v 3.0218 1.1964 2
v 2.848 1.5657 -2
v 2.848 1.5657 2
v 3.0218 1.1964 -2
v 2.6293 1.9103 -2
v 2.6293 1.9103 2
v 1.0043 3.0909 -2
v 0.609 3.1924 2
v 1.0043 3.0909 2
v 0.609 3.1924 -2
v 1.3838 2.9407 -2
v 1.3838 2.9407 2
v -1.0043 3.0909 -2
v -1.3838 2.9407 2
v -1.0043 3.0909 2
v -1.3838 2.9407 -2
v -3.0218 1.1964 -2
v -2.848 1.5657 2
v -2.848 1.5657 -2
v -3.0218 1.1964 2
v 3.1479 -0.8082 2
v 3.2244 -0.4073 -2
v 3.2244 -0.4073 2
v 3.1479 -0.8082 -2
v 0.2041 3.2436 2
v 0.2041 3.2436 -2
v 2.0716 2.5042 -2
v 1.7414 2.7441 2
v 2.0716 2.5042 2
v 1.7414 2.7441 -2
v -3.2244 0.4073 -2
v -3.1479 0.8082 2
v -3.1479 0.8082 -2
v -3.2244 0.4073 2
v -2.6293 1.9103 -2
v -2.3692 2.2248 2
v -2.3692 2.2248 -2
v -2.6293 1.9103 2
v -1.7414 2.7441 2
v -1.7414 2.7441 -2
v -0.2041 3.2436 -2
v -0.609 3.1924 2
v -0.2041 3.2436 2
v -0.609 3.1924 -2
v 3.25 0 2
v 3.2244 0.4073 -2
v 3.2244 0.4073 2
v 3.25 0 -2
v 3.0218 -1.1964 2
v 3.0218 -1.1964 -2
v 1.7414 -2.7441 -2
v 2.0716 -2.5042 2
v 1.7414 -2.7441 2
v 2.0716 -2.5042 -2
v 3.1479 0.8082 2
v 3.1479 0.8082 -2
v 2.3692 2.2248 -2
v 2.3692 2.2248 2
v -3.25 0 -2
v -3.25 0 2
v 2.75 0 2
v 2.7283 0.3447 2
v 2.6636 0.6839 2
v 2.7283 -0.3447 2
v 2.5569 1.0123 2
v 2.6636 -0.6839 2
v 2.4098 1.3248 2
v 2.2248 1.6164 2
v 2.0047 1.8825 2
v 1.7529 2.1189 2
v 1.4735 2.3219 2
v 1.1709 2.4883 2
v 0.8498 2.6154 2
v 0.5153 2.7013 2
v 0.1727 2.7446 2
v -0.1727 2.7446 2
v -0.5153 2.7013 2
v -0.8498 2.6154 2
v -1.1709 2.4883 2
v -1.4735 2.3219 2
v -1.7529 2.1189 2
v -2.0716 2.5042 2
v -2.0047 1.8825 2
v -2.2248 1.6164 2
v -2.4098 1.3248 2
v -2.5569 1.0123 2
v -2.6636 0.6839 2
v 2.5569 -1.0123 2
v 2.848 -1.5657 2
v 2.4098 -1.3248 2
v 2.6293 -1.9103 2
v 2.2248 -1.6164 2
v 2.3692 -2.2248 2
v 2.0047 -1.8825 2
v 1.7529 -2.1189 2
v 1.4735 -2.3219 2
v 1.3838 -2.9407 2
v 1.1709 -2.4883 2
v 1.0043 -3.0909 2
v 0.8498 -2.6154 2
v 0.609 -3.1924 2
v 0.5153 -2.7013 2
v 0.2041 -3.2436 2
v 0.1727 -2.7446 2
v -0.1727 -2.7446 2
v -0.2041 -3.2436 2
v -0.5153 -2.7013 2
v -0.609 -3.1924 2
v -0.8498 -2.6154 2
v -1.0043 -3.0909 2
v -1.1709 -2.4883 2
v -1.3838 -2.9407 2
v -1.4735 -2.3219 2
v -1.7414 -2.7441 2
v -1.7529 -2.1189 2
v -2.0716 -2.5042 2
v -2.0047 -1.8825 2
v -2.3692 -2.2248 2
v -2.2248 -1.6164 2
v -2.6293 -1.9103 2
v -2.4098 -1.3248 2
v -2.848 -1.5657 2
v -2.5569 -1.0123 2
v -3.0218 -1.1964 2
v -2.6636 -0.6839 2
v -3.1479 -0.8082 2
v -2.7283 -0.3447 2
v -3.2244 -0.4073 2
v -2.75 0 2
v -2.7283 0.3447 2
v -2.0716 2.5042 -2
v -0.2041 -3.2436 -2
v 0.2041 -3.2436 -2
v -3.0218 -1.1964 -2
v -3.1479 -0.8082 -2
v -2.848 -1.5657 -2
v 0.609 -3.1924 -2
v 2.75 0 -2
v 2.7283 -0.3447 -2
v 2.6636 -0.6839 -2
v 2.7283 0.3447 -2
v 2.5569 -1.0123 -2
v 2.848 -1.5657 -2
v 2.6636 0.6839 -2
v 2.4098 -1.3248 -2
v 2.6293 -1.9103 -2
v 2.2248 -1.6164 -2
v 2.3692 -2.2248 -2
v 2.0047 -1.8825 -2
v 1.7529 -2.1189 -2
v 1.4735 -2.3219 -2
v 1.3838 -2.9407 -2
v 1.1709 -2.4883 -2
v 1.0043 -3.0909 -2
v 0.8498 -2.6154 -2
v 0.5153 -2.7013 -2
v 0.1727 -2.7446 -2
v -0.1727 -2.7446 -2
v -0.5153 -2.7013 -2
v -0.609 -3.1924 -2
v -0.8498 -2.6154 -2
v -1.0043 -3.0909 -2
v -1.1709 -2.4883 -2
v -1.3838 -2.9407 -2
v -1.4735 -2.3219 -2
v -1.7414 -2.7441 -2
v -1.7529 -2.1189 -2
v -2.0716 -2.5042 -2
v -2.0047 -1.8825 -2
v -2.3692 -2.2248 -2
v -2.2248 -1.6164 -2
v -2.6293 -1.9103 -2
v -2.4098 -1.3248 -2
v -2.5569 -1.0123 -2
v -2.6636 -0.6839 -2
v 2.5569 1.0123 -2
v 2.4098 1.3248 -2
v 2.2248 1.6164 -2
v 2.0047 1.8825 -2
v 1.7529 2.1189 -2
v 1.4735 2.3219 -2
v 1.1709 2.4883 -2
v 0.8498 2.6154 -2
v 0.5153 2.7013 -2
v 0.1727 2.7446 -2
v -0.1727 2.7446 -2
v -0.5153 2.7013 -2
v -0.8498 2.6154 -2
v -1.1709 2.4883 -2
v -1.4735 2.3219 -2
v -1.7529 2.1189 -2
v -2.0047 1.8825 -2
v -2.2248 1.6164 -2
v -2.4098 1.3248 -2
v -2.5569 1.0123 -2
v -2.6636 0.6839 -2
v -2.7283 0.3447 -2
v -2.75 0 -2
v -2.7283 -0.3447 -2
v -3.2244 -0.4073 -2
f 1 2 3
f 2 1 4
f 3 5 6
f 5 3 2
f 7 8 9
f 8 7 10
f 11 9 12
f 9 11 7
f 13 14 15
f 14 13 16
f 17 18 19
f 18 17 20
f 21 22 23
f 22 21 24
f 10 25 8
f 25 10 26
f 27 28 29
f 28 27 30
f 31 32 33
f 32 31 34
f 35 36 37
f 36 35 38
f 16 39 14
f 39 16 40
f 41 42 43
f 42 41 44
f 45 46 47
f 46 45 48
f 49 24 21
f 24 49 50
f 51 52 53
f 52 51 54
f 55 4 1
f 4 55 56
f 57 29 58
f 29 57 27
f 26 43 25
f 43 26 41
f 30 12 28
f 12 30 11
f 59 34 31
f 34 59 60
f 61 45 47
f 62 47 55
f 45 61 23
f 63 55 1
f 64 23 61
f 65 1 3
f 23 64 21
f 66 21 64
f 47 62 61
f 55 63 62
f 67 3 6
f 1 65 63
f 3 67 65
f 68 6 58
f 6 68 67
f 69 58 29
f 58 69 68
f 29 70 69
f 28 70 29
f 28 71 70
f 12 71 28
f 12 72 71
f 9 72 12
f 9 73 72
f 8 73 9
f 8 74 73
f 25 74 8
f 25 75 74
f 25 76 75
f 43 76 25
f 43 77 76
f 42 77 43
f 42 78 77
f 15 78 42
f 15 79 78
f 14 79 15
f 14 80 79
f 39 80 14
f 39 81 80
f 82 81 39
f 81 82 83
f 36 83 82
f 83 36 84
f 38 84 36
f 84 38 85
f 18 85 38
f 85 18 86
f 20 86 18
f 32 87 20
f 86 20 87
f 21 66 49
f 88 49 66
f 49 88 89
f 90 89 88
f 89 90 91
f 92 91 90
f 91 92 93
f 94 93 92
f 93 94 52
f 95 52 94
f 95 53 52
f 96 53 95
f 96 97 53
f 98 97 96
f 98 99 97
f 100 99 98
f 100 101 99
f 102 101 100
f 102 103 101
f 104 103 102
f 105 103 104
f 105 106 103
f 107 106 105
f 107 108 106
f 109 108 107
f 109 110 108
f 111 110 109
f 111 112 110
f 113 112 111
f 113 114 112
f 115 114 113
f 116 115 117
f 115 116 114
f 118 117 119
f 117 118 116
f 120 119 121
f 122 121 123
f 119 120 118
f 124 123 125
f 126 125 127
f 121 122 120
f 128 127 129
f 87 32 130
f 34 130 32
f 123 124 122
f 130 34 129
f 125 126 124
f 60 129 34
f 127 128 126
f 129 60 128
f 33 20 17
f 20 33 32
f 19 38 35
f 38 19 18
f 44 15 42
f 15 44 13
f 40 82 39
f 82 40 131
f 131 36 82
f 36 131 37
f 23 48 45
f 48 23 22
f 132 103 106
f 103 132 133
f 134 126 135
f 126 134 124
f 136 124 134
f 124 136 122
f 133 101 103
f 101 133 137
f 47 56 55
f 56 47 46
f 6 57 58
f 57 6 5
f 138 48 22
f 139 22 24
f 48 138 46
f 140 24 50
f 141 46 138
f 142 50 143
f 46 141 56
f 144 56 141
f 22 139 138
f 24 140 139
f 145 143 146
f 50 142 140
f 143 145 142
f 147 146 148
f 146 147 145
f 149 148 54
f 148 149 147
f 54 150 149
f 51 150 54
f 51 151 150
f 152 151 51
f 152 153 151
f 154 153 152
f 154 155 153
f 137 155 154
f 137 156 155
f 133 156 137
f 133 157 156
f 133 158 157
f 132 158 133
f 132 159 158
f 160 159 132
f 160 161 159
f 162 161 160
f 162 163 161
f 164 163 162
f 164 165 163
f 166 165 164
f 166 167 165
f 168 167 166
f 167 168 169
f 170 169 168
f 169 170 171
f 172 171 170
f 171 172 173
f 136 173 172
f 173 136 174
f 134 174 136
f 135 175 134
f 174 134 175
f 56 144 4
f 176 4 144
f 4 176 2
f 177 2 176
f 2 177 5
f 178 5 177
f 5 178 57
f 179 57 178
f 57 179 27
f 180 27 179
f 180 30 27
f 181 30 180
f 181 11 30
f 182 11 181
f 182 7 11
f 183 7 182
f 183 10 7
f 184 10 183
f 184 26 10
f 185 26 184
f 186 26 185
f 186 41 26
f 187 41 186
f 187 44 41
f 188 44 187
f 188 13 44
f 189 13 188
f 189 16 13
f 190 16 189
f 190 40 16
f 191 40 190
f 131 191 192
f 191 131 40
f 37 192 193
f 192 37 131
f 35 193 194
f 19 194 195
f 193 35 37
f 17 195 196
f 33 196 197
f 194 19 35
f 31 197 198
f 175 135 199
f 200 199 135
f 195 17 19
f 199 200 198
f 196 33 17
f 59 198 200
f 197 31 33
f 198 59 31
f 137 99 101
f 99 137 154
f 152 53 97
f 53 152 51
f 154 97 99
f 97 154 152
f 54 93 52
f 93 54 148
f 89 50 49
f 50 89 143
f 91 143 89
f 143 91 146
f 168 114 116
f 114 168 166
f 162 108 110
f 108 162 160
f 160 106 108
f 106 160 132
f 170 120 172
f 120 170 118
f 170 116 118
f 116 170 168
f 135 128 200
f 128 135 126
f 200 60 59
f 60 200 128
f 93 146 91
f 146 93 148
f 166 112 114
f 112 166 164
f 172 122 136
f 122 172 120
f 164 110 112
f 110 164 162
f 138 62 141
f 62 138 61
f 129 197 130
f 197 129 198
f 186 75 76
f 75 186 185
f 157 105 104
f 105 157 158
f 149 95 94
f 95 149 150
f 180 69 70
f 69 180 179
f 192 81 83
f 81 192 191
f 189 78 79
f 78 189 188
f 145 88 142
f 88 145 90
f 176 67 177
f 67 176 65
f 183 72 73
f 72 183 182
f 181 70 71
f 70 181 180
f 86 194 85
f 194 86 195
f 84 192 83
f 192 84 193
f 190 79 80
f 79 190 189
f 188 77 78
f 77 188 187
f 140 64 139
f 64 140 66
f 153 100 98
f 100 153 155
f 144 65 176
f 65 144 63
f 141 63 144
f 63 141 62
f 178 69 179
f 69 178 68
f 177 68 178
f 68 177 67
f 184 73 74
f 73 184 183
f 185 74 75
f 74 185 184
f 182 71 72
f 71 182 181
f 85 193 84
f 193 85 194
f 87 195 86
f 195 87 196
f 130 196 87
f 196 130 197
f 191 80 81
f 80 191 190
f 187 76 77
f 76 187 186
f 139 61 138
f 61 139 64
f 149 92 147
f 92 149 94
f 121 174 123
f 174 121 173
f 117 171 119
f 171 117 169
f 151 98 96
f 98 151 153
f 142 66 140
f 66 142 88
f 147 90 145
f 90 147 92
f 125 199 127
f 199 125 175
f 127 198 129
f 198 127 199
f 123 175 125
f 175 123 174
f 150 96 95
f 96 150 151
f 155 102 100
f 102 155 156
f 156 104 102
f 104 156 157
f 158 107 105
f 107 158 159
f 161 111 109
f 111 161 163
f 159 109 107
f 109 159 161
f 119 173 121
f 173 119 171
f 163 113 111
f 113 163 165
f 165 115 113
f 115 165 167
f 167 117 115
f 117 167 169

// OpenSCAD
$fn = 50;


difference() {
	union() {
		translate(v = [0, 0, -2.0000000000]) {
			cylinder(h = 4, r = 3.2500000000);
		}
	}
	union() {
		translate(v = [0, 0, -100.0000000000]) {
			cylinder(h = 200, r = 2.7500000000);
		}
	}
}
